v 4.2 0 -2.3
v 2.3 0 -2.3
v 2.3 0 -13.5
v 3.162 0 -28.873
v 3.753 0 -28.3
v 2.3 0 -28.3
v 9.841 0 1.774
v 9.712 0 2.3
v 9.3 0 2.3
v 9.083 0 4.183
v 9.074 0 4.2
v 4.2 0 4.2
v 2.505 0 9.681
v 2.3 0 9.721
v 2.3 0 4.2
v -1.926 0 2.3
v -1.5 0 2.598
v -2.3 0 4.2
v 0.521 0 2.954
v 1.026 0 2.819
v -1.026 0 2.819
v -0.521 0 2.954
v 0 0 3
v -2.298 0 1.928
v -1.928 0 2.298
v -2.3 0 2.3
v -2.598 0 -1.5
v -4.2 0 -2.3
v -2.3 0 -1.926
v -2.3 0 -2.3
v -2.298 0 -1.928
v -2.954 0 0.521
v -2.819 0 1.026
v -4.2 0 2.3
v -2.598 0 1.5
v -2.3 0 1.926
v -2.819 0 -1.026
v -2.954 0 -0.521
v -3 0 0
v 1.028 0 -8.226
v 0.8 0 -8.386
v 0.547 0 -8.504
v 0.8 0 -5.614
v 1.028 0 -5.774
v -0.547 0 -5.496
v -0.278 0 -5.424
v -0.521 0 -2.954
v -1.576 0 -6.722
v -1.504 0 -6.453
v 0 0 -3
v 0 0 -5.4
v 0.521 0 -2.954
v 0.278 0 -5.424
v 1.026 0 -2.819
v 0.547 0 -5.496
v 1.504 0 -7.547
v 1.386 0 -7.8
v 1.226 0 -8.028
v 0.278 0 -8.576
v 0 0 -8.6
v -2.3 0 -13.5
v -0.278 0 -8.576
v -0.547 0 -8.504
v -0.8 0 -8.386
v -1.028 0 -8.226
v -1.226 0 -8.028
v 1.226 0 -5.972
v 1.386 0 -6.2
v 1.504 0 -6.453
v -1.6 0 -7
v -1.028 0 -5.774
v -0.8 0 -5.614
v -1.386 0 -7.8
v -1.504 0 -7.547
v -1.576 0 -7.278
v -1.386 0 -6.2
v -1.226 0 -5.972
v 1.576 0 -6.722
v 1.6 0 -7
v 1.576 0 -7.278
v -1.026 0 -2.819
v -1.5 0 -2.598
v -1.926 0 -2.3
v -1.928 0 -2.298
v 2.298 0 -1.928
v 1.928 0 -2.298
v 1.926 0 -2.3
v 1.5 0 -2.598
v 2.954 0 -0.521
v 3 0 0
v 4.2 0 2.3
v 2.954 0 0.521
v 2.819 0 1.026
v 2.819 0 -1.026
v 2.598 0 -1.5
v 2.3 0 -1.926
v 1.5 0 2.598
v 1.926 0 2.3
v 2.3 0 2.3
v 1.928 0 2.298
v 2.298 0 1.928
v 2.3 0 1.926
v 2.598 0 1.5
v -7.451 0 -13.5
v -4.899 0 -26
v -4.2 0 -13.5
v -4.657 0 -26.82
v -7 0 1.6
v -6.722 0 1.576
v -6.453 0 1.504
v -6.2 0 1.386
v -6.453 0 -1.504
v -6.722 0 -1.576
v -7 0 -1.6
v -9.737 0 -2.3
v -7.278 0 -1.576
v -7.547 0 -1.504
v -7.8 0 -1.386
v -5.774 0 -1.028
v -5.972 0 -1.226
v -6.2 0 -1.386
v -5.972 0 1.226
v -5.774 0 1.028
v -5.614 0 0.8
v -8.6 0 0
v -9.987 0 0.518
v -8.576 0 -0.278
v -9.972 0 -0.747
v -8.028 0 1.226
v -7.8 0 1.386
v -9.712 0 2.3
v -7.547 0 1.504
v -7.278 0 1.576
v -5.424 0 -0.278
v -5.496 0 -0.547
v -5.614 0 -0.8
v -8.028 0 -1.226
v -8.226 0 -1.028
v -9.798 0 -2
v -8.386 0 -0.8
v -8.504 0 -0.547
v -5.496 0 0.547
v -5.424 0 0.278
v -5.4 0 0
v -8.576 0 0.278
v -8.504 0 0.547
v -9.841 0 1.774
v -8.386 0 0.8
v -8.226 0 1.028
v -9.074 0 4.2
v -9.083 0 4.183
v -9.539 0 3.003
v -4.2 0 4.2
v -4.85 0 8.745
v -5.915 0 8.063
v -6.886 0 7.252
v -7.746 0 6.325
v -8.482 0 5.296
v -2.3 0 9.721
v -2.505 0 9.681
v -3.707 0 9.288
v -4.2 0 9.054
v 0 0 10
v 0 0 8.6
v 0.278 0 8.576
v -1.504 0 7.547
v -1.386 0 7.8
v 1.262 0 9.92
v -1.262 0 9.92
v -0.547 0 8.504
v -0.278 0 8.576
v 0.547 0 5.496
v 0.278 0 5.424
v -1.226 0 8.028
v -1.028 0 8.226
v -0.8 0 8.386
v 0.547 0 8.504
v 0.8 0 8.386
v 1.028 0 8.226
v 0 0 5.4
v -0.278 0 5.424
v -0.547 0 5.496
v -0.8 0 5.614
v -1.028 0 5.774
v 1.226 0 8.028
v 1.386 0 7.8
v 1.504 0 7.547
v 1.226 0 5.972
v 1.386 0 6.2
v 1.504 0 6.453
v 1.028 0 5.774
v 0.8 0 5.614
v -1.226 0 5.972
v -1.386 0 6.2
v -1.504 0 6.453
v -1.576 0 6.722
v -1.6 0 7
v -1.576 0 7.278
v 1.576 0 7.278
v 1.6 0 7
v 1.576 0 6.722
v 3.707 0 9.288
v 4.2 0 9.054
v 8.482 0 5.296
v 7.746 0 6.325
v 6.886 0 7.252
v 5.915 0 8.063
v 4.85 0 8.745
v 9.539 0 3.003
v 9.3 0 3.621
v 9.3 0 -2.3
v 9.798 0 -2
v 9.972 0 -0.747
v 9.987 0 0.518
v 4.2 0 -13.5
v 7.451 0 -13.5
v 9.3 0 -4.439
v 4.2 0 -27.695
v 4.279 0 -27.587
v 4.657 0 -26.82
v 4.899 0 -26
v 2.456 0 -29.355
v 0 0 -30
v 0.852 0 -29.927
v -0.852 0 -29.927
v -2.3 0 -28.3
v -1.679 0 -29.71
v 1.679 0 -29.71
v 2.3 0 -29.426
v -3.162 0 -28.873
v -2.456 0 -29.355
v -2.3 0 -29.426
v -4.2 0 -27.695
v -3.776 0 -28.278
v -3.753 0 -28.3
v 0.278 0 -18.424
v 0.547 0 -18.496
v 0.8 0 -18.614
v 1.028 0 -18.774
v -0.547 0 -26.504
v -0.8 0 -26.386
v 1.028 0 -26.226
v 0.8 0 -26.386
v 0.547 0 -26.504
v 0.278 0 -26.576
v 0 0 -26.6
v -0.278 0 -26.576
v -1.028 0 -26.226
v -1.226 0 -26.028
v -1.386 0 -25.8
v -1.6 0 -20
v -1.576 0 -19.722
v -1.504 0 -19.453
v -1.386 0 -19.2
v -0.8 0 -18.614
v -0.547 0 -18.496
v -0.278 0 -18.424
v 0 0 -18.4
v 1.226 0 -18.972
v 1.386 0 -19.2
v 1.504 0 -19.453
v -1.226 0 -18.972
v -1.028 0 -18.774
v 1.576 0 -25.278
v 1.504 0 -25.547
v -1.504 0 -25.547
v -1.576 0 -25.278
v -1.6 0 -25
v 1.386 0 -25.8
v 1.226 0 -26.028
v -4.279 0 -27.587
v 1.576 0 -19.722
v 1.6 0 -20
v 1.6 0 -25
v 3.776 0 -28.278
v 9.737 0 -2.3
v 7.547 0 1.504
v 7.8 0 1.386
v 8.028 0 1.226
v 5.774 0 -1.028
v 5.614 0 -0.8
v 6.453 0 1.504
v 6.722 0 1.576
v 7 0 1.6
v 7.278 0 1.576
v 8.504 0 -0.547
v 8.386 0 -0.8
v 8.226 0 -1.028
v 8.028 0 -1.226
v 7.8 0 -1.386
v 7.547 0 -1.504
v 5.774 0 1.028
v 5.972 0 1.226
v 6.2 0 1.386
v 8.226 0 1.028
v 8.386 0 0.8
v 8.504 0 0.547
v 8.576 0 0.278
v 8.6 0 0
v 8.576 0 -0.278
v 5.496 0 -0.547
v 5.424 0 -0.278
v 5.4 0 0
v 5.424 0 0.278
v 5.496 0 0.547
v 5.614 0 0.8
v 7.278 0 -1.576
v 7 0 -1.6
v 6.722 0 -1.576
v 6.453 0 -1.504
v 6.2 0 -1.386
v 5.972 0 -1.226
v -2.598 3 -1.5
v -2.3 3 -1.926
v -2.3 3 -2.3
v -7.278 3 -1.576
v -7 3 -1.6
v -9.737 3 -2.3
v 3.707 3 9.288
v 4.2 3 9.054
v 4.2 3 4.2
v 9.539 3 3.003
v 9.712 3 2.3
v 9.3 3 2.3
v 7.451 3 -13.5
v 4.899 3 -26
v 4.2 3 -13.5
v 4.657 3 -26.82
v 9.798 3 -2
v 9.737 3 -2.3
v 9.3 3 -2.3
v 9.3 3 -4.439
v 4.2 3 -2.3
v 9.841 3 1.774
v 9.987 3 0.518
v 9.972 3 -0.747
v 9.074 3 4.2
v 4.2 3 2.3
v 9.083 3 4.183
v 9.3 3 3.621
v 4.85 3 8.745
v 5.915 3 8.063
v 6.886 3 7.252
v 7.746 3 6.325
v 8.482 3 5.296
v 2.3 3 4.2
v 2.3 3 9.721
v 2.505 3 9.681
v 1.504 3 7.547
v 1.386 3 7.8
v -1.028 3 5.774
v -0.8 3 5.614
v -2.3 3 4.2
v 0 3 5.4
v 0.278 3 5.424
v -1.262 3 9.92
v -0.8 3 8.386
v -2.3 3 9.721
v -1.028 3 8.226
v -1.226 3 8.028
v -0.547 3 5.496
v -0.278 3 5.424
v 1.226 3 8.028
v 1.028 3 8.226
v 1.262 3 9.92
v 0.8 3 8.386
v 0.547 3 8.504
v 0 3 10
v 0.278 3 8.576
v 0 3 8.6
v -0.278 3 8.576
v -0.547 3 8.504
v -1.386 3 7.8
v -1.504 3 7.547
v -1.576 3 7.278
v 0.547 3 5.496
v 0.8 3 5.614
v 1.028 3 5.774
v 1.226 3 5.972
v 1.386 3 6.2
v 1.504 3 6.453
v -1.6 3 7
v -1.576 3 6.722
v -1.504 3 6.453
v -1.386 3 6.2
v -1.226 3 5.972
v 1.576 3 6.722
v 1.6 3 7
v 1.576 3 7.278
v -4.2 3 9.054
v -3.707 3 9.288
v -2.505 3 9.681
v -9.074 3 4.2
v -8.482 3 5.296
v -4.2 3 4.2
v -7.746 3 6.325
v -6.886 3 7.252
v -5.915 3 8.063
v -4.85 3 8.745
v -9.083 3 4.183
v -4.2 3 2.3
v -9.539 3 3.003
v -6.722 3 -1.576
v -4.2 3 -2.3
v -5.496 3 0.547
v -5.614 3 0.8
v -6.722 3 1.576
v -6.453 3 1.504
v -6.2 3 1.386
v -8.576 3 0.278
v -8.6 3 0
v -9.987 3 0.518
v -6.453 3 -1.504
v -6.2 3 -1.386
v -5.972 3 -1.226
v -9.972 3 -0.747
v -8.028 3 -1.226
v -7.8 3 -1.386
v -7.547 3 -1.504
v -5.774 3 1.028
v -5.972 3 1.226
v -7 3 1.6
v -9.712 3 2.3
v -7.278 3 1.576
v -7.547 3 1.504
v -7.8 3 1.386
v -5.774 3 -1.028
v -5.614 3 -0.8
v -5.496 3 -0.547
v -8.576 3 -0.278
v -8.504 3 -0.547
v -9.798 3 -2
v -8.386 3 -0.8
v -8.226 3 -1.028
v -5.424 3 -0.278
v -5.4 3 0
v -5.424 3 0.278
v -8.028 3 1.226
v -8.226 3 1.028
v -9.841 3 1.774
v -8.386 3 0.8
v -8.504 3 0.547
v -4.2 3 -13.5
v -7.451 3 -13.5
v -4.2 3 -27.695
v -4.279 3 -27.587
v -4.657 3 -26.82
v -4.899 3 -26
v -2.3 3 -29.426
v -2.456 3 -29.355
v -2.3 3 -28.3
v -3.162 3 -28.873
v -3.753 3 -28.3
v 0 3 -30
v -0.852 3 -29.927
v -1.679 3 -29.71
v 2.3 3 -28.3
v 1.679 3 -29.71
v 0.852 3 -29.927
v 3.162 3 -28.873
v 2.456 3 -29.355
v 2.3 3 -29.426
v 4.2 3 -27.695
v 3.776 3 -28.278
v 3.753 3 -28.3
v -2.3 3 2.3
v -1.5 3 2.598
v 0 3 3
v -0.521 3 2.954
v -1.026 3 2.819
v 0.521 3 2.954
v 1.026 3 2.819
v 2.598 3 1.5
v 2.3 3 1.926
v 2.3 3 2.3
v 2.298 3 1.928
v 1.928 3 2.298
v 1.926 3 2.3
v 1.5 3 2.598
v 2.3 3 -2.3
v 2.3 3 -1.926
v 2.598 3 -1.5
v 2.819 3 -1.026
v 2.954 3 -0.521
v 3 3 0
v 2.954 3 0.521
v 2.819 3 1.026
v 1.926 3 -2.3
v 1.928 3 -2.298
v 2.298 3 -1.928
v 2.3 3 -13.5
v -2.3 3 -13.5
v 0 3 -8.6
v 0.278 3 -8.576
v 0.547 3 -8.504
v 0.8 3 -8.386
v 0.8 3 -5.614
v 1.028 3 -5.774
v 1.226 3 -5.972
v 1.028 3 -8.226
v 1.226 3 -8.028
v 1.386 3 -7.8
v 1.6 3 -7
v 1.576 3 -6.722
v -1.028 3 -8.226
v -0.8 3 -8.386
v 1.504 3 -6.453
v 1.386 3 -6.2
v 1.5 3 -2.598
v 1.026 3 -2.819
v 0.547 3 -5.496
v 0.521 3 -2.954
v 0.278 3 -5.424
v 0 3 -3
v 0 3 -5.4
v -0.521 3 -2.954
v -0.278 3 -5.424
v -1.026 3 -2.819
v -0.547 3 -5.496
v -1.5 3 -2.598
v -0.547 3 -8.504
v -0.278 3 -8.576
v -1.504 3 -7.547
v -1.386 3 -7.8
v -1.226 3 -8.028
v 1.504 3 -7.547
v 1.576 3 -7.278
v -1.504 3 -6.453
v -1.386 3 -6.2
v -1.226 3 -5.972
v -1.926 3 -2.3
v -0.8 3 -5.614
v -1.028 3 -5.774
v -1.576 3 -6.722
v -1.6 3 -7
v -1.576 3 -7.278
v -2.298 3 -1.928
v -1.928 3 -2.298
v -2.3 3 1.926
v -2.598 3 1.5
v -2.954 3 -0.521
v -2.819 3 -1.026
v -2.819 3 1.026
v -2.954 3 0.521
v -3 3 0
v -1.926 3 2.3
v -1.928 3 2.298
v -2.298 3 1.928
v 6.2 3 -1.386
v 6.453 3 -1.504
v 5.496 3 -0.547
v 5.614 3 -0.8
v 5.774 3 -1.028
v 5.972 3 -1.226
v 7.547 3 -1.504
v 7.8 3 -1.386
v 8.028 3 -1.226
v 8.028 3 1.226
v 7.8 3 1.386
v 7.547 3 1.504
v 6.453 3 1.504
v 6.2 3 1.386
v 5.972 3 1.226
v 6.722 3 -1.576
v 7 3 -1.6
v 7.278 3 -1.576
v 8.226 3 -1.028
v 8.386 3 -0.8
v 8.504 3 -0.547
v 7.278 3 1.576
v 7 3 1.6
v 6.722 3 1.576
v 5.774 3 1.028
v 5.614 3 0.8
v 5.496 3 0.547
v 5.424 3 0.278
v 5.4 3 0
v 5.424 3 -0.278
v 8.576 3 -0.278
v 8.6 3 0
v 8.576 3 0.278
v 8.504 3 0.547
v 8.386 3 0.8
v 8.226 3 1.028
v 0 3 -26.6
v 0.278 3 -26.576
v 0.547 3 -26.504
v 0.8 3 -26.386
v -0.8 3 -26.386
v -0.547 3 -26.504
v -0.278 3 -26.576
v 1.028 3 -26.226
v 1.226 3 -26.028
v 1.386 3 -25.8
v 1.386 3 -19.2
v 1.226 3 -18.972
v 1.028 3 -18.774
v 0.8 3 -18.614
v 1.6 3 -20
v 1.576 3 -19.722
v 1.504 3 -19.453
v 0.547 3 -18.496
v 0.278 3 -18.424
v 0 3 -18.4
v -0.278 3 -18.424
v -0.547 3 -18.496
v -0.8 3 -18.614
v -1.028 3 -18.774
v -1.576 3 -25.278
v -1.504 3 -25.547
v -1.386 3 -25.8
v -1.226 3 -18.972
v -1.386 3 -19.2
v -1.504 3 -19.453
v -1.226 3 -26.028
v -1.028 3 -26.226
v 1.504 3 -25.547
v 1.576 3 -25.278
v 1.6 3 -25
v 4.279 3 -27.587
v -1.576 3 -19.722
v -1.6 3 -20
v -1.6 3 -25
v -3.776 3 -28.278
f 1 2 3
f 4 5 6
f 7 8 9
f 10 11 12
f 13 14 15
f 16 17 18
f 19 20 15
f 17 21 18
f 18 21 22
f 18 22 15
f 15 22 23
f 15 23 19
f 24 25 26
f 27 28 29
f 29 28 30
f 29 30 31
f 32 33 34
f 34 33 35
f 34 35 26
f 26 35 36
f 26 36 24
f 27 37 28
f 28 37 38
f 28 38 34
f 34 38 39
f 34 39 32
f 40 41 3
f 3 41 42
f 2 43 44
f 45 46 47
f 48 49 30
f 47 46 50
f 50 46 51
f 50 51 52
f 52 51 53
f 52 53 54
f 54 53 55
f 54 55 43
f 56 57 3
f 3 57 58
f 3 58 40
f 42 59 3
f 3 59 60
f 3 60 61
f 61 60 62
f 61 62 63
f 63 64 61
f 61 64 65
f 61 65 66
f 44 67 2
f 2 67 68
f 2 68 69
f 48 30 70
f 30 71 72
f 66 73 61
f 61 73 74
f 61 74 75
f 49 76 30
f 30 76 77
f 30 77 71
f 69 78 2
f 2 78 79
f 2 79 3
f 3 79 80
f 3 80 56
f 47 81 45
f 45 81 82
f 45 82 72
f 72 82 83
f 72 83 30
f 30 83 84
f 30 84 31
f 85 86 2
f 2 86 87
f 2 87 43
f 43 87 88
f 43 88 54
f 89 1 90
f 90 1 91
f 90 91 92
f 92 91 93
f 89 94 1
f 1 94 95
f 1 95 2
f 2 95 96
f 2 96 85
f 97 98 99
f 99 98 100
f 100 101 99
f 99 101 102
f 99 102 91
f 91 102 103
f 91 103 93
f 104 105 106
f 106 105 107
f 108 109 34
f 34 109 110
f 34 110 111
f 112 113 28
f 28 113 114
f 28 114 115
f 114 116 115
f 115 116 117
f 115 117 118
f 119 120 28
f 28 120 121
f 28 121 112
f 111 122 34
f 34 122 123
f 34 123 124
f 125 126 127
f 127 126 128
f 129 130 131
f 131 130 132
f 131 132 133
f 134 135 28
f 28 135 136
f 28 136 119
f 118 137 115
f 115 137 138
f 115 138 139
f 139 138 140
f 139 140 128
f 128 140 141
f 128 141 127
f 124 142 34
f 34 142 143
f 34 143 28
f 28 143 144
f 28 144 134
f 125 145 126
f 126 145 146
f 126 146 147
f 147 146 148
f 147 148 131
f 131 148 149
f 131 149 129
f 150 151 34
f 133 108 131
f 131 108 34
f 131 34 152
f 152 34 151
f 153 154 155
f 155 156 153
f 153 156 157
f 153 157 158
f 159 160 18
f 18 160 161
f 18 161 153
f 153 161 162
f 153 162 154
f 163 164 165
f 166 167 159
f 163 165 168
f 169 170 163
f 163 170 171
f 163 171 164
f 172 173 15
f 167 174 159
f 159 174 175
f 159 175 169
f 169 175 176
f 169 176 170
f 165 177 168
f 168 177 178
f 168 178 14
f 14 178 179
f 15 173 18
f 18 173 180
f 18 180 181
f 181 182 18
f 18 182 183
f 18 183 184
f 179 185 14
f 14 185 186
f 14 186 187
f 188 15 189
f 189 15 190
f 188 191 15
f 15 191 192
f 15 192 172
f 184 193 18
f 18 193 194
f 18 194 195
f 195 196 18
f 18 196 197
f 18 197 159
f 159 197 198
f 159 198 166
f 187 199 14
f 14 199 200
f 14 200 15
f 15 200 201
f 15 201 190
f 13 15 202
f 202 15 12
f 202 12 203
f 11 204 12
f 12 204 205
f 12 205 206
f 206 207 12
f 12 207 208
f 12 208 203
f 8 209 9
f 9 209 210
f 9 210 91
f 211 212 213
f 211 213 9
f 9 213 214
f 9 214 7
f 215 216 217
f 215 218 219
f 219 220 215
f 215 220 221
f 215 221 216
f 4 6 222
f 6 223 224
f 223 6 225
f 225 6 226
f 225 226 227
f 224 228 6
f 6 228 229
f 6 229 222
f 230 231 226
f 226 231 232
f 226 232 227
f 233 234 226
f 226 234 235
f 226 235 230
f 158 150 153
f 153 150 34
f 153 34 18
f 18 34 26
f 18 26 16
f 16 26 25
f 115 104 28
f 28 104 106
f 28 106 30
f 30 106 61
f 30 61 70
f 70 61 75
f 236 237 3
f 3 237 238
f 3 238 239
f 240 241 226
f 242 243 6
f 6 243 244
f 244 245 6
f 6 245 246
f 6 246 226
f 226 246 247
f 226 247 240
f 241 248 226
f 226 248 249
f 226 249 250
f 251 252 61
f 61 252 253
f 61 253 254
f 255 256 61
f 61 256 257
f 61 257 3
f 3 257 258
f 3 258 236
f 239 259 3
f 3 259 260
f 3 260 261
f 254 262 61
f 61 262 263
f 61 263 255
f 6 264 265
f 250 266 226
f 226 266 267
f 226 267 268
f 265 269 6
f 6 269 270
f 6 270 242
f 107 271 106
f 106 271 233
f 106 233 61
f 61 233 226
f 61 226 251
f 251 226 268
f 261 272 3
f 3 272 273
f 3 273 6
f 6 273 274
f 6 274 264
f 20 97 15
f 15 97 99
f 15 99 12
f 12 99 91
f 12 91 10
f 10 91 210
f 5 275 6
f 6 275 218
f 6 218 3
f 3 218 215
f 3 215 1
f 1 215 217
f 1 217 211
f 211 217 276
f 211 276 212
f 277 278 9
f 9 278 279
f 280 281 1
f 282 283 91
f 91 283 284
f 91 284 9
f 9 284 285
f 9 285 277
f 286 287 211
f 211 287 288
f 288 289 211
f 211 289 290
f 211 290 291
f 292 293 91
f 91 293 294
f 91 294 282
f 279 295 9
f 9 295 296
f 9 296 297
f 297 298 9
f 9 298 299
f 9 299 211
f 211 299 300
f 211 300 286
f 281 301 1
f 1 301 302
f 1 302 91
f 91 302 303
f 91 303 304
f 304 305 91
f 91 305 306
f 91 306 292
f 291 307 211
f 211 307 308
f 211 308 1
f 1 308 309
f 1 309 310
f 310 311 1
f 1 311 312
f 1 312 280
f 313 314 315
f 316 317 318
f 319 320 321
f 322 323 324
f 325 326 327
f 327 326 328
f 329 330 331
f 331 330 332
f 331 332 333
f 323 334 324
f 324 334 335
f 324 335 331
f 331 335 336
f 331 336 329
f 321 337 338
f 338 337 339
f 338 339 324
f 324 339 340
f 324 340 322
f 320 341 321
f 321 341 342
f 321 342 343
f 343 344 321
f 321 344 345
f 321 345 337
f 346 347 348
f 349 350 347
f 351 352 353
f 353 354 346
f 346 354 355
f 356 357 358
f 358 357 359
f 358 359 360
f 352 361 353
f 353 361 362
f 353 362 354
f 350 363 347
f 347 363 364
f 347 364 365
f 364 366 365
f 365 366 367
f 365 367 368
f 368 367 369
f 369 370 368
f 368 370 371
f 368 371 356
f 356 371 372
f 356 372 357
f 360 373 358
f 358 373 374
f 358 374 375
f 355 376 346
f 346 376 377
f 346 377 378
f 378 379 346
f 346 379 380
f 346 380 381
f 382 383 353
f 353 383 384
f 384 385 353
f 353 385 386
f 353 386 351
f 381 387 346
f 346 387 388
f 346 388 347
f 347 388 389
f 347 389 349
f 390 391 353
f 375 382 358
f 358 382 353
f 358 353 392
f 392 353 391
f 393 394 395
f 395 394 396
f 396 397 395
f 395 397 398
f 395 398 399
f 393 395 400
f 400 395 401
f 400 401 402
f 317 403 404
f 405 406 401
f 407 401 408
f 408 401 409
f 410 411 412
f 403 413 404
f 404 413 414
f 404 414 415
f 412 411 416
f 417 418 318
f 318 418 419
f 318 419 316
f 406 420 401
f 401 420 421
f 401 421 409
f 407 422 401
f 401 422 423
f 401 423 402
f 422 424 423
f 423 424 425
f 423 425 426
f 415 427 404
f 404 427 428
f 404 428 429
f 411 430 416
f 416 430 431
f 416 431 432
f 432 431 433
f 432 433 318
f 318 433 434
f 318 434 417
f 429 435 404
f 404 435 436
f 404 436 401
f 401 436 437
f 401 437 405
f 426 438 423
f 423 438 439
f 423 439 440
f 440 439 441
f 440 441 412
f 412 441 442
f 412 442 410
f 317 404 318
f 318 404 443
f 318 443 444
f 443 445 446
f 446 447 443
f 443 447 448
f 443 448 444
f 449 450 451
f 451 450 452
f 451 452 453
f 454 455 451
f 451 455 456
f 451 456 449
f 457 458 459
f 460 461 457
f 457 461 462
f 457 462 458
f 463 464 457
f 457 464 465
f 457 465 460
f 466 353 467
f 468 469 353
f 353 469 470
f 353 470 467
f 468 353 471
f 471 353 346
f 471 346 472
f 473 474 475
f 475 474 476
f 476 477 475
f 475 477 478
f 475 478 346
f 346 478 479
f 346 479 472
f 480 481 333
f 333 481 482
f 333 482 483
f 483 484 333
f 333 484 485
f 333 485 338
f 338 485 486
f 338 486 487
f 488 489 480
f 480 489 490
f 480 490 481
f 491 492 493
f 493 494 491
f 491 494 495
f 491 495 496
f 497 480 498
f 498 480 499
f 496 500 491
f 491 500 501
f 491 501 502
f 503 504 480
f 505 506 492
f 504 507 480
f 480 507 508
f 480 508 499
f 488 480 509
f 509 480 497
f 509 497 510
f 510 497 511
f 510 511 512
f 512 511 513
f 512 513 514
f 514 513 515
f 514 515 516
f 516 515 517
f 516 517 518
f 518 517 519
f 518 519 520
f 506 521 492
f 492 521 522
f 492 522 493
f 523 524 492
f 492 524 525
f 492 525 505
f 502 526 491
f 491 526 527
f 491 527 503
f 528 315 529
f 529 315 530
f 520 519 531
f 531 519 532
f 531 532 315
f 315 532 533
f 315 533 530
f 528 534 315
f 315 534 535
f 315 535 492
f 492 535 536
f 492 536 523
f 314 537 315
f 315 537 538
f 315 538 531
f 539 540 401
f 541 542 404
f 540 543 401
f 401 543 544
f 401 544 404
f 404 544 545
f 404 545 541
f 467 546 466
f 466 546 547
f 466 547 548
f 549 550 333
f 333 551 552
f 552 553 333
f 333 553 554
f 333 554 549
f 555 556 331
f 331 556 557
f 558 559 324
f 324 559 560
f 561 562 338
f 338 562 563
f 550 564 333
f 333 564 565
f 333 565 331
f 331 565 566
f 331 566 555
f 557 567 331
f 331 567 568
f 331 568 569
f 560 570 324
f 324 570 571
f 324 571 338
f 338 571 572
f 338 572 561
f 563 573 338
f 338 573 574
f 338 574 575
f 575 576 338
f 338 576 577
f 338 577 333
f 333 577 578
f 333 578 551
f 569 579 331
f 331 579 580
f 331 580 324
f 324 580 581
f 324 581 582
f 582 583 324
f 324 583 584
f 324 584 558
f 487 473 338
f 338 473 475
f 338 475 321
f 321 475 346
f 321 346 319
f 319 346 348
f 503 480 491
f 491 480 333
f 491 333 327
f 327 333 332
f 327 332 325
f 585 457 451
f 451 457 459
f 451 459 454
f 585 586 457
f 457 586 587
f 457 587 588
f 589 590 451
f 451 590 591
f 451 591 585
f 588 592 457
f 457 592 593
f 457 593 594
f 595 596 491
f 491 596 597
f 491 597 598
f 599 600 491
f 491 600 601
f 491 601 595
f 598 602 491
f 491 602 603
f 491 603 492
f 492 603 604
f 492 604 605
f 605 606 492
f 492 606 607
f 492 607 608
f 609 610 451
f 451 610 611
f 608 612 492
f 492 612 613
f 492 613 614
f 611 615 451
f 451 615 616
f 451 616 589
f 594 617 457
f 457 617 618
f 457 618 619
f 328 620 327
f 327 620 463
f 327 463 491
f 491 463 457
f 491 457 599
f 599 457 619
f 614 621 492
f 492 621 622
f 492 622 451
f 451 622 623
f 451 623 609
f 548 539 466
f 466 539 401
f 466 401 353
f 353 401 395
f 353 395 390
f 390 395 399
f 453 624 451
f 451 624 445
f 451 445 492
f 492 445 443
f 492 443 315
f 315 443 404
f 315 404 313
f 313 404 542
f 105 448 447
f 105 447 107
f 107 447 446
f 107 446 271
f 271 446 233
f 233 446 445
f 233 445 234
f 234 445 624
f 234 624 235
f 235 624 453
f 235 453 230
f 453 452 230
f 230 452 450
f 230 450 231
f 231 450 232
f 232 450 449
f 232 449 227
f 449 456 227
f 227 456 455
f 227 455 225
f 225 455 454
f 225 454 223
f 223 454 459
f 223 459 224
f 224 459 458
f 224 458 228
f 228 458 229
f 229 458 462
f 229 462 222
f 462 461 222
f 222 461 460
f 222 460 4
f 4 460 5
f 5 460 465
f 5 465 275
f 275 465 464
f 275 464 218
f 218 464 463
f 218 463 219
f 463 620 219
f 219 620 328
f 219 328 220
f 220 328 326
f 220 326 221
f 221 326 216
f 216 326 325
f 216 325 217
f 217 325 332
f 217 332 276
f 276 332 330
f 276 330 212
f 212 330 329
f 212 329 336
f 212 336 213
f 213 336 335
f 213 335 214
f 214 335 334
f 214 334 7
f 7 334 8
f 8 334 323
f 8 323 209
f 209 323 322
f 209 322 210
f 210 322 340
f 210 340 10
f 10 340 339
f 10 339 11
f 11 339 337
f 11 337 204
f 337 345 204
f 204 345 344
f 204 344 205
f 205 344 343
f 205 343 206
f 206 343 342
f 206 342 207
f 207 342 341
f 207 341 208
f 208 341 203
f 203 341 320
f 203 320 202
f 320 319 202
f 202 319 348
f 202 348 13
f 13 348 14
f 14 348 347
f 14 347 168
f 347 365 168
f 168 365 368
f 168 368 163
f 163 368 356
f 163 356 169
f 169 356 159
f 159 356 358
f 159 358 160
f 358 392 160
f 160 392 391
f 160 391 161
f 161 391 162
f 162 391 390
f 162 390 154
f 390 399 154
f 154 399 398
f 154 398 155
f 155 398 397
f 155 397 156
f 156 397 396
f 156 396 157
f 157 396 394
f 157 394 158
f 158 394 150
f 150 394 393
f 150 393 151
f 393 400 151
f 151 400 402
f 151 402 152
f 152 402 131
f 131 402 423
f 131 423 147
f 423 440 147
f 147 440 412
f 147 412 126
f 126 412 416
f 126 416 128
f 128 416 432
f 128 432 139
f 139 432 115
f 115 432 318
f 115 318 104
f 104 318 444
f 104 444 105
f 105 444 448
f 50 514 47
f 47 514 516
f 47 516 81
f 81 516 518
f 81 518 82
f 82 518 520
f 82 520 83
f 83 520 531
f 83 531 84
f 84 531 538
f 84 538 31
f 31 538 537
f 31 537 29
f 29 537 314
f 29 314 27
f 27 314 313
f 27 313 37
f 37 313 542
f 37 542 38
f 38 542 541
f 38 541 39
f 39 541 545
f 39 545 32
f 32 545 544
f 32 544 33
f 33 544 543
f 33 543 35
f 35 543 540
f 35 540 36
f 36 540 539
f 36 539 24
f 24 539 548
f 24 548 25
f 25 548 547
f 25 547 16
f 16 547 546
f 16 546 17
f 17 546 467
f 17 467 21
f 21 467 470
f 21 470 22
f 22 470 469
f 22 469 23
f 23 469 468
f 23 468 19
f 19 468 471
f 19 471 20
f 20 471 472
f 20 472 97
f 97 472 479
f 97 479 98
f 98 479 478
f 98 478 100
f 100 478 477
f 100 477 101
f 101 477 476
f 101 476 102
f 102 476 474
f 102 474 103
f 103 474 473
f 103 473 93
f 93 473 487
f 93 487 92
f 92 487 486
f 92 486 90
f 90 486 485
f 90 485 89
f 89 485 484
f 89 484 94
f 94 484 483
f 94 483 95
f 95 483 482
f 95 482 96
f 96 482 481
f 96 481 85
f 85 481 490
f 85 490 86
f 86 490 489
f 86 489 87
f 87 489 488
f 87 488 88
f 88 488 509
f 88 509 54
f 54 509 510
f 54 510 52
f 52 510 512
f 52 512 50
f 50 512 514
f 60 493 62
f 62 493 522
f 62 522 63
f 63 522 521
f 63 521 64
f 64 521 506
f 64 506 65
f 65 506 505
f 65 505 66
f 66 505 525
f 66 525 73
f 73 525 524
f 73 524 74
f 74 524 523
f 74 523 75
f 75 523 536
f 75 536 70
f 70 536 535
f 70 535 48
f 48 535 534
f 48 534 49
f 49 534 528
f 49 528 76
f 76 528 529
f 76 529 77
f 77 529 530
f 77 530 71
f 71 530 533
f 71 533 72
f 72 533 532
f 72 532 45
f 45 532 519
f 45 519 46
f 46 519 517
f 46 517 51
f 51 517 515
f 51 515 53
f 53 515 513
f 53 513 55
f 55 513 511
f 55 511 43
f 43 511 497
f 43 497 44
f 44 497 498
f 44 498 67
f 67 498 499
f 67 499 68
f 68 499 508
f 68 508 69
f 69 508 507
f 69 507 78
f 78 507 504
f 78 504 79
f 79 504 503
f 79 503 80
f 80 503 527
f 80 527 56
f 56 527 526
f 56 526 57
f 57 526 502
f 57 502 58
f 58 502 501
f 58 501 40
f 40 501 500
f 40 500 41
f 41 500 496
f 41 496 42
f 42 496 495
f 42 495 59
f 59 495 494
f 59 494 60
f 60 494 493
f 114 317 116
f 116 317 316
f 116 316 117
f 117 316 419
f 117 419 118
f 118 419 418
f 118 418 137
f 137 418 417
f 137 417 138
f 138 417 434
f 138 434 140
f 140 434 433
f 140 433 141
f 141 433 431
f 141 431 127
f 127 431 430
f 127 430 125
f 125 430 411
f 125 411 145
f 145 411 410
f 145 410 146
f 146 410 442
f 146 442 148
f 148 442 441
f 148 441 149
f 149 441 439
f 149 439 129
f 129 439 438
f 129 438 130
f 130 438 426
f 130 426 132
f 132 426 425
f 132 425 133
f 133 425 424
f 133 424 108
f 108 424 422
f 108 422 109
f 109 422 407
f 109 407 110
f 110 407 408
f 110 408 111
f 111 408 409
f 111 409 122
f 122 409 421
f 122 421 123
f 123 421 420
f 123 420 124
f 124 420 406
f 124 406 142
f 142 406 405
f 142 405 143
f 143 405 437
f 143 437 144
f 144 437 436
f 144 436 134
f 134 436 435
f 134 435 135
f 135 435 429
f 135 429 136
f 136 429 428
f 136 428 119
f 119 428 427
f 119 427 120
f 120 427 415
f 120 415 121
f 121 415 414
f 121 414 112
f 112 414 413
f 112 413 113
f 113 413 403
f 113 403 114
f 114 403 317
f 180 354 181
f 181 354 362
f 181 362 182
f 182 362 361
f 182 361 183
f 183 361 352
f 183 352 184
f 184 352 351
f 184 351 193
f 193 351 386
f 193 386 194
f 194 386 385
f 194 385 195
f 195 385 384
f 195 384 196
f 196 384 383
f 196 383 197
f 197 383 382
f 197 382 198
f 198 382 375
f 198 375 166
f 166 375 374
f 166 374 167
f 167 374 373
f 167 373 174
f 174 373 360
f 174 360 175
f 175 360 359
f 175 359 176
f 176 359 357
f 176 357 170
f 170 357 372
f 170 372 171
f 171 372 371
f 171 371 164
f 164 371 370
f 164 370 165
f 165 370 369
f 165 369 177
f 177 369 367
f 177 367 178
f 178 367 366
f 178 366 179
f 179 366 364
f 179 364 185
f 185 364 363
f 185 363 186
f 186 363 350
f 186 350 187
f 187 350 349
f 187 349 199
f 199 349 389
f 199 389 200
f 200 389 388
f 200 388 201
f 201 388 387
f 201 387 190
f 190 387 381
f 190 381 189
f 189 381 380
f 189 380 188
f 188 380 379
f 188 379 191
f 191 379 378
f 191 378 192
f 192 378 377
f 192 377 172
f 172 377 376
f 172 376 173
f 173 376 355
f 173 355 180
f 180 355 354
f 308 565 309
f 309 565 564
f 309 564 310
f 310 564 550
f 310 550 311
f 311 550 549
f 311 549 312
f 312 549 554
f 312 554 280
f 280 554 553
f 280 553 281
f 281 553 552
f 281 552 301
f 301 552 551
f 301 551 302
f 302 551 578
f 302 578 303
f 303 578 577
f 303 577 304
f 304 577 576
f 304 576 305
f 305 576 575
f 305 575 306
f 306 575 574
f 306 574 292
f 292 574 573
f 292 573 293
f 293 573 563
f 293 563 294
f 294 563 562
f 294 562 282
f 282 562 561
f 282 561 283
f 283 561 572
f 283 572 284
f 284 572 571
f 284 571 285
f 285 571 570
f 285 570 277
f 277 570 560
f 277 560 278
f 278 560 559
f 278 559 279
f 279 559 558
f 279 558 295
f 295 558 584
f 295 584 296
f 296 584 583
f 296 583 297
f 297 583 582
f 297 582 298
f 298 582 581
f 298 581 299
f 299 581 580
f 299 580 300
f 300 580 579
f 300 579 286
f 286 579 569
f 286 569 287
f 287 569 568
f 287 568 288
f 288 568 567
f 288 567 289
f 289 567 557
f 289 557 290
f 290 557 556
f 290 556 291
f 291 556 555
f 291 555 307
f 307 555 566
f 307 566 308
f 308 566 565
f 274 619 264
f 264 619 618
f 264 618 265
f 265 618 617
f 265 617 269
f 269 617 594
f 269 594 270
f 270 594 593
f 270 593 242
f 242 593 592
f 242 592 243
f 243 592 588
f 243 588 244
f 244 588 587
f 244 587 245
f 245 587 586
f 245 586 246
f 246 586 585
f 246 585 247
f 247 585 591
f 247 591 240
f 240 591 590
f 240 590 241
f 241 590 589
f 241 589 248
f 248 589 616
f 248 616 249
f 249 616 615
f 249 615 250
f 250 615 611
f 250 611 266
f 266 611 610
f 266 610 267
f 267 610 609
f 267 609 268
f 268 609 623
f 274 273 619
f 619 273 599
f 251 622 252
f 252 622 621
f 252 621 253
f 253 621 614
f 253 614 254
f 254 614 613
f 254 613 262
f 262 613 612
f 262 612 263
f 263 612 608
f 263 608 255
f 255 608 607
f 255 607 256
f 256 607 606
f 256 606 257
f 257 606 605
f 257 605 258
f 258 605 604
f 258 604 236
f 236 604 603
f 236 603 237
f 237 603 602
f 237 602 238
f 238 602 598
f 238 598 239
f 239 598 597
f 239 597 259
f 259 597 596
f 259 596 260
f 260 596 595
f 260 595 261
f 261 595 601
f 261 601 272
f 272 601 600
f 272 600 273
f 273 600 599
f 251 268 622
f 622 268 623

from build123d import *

# Parameters (mm, degrees)
SKETCH1_R           = 3
SKETCH1_R_2         = 1.6
BOSS_EXTRUDE1_DEPTH = 3


with BuildPart() as part:
    # Sketch1 → Boss-Extrude1 (new body)
    with BuildSketch(Plane(origin=(0, 0, 0), x_dir=(1, 0, 0), z_dir=(0, 1, 0))):
        with BuildLine():
            Line((-4.898979486, 26), (-9.797958971, 2))
            ThreePointArc((-9.797958971, 2), (0, -10), (9.797958971, 2))
            Line((9.797958971, 2), (4.898979486, 26))
            ThreePointArc((4.898979486, 26), (0, 30), (-4.898979486, 26))
        make_face()
        with Locations(Location((0, 0, 0), (0, 0, 270))):
            Circle(SKETCH1_R, mode=Mode.SUBTRACT)
        with Locations(Location((0, 7, 0), (0, 0, 270))):
            Circle(SKETCH1_R_2, mode=Mode.SUBTRACT)
        with Locations(Location((7, 0, 0), (0, 0, 270))):
            Circle(SKETCH1_R_2, mode=Mode.SUBTRACT)
        with Locations(Location((0, -7, 0), (0, 0, 270))):
            Circle(SKETCH1_R_2, mode=Mode.SUBTRACT)
        with Locations(Location((-7, 0, 0), (0, 0, 270))):
            Circle(SKETCH1_R_2, mode=Mode.SUBTRACT)
        with BuildLine():
            Line((1.6, 25), (1.6, 20))
            ThreePointArc((1.6, 20), (0, 18.4), (-1.6, 20))
            Line((-1.6, 20), (-1.6, 25))
            ThreePointArc((-1.6, 25), (0, 26.6), (1.6, 25))
        make_face(mode=Mode.SUBTRACT)
    extrude(amount=BOSS_EXTRUDE1_DEPTH)


solid = part.part
